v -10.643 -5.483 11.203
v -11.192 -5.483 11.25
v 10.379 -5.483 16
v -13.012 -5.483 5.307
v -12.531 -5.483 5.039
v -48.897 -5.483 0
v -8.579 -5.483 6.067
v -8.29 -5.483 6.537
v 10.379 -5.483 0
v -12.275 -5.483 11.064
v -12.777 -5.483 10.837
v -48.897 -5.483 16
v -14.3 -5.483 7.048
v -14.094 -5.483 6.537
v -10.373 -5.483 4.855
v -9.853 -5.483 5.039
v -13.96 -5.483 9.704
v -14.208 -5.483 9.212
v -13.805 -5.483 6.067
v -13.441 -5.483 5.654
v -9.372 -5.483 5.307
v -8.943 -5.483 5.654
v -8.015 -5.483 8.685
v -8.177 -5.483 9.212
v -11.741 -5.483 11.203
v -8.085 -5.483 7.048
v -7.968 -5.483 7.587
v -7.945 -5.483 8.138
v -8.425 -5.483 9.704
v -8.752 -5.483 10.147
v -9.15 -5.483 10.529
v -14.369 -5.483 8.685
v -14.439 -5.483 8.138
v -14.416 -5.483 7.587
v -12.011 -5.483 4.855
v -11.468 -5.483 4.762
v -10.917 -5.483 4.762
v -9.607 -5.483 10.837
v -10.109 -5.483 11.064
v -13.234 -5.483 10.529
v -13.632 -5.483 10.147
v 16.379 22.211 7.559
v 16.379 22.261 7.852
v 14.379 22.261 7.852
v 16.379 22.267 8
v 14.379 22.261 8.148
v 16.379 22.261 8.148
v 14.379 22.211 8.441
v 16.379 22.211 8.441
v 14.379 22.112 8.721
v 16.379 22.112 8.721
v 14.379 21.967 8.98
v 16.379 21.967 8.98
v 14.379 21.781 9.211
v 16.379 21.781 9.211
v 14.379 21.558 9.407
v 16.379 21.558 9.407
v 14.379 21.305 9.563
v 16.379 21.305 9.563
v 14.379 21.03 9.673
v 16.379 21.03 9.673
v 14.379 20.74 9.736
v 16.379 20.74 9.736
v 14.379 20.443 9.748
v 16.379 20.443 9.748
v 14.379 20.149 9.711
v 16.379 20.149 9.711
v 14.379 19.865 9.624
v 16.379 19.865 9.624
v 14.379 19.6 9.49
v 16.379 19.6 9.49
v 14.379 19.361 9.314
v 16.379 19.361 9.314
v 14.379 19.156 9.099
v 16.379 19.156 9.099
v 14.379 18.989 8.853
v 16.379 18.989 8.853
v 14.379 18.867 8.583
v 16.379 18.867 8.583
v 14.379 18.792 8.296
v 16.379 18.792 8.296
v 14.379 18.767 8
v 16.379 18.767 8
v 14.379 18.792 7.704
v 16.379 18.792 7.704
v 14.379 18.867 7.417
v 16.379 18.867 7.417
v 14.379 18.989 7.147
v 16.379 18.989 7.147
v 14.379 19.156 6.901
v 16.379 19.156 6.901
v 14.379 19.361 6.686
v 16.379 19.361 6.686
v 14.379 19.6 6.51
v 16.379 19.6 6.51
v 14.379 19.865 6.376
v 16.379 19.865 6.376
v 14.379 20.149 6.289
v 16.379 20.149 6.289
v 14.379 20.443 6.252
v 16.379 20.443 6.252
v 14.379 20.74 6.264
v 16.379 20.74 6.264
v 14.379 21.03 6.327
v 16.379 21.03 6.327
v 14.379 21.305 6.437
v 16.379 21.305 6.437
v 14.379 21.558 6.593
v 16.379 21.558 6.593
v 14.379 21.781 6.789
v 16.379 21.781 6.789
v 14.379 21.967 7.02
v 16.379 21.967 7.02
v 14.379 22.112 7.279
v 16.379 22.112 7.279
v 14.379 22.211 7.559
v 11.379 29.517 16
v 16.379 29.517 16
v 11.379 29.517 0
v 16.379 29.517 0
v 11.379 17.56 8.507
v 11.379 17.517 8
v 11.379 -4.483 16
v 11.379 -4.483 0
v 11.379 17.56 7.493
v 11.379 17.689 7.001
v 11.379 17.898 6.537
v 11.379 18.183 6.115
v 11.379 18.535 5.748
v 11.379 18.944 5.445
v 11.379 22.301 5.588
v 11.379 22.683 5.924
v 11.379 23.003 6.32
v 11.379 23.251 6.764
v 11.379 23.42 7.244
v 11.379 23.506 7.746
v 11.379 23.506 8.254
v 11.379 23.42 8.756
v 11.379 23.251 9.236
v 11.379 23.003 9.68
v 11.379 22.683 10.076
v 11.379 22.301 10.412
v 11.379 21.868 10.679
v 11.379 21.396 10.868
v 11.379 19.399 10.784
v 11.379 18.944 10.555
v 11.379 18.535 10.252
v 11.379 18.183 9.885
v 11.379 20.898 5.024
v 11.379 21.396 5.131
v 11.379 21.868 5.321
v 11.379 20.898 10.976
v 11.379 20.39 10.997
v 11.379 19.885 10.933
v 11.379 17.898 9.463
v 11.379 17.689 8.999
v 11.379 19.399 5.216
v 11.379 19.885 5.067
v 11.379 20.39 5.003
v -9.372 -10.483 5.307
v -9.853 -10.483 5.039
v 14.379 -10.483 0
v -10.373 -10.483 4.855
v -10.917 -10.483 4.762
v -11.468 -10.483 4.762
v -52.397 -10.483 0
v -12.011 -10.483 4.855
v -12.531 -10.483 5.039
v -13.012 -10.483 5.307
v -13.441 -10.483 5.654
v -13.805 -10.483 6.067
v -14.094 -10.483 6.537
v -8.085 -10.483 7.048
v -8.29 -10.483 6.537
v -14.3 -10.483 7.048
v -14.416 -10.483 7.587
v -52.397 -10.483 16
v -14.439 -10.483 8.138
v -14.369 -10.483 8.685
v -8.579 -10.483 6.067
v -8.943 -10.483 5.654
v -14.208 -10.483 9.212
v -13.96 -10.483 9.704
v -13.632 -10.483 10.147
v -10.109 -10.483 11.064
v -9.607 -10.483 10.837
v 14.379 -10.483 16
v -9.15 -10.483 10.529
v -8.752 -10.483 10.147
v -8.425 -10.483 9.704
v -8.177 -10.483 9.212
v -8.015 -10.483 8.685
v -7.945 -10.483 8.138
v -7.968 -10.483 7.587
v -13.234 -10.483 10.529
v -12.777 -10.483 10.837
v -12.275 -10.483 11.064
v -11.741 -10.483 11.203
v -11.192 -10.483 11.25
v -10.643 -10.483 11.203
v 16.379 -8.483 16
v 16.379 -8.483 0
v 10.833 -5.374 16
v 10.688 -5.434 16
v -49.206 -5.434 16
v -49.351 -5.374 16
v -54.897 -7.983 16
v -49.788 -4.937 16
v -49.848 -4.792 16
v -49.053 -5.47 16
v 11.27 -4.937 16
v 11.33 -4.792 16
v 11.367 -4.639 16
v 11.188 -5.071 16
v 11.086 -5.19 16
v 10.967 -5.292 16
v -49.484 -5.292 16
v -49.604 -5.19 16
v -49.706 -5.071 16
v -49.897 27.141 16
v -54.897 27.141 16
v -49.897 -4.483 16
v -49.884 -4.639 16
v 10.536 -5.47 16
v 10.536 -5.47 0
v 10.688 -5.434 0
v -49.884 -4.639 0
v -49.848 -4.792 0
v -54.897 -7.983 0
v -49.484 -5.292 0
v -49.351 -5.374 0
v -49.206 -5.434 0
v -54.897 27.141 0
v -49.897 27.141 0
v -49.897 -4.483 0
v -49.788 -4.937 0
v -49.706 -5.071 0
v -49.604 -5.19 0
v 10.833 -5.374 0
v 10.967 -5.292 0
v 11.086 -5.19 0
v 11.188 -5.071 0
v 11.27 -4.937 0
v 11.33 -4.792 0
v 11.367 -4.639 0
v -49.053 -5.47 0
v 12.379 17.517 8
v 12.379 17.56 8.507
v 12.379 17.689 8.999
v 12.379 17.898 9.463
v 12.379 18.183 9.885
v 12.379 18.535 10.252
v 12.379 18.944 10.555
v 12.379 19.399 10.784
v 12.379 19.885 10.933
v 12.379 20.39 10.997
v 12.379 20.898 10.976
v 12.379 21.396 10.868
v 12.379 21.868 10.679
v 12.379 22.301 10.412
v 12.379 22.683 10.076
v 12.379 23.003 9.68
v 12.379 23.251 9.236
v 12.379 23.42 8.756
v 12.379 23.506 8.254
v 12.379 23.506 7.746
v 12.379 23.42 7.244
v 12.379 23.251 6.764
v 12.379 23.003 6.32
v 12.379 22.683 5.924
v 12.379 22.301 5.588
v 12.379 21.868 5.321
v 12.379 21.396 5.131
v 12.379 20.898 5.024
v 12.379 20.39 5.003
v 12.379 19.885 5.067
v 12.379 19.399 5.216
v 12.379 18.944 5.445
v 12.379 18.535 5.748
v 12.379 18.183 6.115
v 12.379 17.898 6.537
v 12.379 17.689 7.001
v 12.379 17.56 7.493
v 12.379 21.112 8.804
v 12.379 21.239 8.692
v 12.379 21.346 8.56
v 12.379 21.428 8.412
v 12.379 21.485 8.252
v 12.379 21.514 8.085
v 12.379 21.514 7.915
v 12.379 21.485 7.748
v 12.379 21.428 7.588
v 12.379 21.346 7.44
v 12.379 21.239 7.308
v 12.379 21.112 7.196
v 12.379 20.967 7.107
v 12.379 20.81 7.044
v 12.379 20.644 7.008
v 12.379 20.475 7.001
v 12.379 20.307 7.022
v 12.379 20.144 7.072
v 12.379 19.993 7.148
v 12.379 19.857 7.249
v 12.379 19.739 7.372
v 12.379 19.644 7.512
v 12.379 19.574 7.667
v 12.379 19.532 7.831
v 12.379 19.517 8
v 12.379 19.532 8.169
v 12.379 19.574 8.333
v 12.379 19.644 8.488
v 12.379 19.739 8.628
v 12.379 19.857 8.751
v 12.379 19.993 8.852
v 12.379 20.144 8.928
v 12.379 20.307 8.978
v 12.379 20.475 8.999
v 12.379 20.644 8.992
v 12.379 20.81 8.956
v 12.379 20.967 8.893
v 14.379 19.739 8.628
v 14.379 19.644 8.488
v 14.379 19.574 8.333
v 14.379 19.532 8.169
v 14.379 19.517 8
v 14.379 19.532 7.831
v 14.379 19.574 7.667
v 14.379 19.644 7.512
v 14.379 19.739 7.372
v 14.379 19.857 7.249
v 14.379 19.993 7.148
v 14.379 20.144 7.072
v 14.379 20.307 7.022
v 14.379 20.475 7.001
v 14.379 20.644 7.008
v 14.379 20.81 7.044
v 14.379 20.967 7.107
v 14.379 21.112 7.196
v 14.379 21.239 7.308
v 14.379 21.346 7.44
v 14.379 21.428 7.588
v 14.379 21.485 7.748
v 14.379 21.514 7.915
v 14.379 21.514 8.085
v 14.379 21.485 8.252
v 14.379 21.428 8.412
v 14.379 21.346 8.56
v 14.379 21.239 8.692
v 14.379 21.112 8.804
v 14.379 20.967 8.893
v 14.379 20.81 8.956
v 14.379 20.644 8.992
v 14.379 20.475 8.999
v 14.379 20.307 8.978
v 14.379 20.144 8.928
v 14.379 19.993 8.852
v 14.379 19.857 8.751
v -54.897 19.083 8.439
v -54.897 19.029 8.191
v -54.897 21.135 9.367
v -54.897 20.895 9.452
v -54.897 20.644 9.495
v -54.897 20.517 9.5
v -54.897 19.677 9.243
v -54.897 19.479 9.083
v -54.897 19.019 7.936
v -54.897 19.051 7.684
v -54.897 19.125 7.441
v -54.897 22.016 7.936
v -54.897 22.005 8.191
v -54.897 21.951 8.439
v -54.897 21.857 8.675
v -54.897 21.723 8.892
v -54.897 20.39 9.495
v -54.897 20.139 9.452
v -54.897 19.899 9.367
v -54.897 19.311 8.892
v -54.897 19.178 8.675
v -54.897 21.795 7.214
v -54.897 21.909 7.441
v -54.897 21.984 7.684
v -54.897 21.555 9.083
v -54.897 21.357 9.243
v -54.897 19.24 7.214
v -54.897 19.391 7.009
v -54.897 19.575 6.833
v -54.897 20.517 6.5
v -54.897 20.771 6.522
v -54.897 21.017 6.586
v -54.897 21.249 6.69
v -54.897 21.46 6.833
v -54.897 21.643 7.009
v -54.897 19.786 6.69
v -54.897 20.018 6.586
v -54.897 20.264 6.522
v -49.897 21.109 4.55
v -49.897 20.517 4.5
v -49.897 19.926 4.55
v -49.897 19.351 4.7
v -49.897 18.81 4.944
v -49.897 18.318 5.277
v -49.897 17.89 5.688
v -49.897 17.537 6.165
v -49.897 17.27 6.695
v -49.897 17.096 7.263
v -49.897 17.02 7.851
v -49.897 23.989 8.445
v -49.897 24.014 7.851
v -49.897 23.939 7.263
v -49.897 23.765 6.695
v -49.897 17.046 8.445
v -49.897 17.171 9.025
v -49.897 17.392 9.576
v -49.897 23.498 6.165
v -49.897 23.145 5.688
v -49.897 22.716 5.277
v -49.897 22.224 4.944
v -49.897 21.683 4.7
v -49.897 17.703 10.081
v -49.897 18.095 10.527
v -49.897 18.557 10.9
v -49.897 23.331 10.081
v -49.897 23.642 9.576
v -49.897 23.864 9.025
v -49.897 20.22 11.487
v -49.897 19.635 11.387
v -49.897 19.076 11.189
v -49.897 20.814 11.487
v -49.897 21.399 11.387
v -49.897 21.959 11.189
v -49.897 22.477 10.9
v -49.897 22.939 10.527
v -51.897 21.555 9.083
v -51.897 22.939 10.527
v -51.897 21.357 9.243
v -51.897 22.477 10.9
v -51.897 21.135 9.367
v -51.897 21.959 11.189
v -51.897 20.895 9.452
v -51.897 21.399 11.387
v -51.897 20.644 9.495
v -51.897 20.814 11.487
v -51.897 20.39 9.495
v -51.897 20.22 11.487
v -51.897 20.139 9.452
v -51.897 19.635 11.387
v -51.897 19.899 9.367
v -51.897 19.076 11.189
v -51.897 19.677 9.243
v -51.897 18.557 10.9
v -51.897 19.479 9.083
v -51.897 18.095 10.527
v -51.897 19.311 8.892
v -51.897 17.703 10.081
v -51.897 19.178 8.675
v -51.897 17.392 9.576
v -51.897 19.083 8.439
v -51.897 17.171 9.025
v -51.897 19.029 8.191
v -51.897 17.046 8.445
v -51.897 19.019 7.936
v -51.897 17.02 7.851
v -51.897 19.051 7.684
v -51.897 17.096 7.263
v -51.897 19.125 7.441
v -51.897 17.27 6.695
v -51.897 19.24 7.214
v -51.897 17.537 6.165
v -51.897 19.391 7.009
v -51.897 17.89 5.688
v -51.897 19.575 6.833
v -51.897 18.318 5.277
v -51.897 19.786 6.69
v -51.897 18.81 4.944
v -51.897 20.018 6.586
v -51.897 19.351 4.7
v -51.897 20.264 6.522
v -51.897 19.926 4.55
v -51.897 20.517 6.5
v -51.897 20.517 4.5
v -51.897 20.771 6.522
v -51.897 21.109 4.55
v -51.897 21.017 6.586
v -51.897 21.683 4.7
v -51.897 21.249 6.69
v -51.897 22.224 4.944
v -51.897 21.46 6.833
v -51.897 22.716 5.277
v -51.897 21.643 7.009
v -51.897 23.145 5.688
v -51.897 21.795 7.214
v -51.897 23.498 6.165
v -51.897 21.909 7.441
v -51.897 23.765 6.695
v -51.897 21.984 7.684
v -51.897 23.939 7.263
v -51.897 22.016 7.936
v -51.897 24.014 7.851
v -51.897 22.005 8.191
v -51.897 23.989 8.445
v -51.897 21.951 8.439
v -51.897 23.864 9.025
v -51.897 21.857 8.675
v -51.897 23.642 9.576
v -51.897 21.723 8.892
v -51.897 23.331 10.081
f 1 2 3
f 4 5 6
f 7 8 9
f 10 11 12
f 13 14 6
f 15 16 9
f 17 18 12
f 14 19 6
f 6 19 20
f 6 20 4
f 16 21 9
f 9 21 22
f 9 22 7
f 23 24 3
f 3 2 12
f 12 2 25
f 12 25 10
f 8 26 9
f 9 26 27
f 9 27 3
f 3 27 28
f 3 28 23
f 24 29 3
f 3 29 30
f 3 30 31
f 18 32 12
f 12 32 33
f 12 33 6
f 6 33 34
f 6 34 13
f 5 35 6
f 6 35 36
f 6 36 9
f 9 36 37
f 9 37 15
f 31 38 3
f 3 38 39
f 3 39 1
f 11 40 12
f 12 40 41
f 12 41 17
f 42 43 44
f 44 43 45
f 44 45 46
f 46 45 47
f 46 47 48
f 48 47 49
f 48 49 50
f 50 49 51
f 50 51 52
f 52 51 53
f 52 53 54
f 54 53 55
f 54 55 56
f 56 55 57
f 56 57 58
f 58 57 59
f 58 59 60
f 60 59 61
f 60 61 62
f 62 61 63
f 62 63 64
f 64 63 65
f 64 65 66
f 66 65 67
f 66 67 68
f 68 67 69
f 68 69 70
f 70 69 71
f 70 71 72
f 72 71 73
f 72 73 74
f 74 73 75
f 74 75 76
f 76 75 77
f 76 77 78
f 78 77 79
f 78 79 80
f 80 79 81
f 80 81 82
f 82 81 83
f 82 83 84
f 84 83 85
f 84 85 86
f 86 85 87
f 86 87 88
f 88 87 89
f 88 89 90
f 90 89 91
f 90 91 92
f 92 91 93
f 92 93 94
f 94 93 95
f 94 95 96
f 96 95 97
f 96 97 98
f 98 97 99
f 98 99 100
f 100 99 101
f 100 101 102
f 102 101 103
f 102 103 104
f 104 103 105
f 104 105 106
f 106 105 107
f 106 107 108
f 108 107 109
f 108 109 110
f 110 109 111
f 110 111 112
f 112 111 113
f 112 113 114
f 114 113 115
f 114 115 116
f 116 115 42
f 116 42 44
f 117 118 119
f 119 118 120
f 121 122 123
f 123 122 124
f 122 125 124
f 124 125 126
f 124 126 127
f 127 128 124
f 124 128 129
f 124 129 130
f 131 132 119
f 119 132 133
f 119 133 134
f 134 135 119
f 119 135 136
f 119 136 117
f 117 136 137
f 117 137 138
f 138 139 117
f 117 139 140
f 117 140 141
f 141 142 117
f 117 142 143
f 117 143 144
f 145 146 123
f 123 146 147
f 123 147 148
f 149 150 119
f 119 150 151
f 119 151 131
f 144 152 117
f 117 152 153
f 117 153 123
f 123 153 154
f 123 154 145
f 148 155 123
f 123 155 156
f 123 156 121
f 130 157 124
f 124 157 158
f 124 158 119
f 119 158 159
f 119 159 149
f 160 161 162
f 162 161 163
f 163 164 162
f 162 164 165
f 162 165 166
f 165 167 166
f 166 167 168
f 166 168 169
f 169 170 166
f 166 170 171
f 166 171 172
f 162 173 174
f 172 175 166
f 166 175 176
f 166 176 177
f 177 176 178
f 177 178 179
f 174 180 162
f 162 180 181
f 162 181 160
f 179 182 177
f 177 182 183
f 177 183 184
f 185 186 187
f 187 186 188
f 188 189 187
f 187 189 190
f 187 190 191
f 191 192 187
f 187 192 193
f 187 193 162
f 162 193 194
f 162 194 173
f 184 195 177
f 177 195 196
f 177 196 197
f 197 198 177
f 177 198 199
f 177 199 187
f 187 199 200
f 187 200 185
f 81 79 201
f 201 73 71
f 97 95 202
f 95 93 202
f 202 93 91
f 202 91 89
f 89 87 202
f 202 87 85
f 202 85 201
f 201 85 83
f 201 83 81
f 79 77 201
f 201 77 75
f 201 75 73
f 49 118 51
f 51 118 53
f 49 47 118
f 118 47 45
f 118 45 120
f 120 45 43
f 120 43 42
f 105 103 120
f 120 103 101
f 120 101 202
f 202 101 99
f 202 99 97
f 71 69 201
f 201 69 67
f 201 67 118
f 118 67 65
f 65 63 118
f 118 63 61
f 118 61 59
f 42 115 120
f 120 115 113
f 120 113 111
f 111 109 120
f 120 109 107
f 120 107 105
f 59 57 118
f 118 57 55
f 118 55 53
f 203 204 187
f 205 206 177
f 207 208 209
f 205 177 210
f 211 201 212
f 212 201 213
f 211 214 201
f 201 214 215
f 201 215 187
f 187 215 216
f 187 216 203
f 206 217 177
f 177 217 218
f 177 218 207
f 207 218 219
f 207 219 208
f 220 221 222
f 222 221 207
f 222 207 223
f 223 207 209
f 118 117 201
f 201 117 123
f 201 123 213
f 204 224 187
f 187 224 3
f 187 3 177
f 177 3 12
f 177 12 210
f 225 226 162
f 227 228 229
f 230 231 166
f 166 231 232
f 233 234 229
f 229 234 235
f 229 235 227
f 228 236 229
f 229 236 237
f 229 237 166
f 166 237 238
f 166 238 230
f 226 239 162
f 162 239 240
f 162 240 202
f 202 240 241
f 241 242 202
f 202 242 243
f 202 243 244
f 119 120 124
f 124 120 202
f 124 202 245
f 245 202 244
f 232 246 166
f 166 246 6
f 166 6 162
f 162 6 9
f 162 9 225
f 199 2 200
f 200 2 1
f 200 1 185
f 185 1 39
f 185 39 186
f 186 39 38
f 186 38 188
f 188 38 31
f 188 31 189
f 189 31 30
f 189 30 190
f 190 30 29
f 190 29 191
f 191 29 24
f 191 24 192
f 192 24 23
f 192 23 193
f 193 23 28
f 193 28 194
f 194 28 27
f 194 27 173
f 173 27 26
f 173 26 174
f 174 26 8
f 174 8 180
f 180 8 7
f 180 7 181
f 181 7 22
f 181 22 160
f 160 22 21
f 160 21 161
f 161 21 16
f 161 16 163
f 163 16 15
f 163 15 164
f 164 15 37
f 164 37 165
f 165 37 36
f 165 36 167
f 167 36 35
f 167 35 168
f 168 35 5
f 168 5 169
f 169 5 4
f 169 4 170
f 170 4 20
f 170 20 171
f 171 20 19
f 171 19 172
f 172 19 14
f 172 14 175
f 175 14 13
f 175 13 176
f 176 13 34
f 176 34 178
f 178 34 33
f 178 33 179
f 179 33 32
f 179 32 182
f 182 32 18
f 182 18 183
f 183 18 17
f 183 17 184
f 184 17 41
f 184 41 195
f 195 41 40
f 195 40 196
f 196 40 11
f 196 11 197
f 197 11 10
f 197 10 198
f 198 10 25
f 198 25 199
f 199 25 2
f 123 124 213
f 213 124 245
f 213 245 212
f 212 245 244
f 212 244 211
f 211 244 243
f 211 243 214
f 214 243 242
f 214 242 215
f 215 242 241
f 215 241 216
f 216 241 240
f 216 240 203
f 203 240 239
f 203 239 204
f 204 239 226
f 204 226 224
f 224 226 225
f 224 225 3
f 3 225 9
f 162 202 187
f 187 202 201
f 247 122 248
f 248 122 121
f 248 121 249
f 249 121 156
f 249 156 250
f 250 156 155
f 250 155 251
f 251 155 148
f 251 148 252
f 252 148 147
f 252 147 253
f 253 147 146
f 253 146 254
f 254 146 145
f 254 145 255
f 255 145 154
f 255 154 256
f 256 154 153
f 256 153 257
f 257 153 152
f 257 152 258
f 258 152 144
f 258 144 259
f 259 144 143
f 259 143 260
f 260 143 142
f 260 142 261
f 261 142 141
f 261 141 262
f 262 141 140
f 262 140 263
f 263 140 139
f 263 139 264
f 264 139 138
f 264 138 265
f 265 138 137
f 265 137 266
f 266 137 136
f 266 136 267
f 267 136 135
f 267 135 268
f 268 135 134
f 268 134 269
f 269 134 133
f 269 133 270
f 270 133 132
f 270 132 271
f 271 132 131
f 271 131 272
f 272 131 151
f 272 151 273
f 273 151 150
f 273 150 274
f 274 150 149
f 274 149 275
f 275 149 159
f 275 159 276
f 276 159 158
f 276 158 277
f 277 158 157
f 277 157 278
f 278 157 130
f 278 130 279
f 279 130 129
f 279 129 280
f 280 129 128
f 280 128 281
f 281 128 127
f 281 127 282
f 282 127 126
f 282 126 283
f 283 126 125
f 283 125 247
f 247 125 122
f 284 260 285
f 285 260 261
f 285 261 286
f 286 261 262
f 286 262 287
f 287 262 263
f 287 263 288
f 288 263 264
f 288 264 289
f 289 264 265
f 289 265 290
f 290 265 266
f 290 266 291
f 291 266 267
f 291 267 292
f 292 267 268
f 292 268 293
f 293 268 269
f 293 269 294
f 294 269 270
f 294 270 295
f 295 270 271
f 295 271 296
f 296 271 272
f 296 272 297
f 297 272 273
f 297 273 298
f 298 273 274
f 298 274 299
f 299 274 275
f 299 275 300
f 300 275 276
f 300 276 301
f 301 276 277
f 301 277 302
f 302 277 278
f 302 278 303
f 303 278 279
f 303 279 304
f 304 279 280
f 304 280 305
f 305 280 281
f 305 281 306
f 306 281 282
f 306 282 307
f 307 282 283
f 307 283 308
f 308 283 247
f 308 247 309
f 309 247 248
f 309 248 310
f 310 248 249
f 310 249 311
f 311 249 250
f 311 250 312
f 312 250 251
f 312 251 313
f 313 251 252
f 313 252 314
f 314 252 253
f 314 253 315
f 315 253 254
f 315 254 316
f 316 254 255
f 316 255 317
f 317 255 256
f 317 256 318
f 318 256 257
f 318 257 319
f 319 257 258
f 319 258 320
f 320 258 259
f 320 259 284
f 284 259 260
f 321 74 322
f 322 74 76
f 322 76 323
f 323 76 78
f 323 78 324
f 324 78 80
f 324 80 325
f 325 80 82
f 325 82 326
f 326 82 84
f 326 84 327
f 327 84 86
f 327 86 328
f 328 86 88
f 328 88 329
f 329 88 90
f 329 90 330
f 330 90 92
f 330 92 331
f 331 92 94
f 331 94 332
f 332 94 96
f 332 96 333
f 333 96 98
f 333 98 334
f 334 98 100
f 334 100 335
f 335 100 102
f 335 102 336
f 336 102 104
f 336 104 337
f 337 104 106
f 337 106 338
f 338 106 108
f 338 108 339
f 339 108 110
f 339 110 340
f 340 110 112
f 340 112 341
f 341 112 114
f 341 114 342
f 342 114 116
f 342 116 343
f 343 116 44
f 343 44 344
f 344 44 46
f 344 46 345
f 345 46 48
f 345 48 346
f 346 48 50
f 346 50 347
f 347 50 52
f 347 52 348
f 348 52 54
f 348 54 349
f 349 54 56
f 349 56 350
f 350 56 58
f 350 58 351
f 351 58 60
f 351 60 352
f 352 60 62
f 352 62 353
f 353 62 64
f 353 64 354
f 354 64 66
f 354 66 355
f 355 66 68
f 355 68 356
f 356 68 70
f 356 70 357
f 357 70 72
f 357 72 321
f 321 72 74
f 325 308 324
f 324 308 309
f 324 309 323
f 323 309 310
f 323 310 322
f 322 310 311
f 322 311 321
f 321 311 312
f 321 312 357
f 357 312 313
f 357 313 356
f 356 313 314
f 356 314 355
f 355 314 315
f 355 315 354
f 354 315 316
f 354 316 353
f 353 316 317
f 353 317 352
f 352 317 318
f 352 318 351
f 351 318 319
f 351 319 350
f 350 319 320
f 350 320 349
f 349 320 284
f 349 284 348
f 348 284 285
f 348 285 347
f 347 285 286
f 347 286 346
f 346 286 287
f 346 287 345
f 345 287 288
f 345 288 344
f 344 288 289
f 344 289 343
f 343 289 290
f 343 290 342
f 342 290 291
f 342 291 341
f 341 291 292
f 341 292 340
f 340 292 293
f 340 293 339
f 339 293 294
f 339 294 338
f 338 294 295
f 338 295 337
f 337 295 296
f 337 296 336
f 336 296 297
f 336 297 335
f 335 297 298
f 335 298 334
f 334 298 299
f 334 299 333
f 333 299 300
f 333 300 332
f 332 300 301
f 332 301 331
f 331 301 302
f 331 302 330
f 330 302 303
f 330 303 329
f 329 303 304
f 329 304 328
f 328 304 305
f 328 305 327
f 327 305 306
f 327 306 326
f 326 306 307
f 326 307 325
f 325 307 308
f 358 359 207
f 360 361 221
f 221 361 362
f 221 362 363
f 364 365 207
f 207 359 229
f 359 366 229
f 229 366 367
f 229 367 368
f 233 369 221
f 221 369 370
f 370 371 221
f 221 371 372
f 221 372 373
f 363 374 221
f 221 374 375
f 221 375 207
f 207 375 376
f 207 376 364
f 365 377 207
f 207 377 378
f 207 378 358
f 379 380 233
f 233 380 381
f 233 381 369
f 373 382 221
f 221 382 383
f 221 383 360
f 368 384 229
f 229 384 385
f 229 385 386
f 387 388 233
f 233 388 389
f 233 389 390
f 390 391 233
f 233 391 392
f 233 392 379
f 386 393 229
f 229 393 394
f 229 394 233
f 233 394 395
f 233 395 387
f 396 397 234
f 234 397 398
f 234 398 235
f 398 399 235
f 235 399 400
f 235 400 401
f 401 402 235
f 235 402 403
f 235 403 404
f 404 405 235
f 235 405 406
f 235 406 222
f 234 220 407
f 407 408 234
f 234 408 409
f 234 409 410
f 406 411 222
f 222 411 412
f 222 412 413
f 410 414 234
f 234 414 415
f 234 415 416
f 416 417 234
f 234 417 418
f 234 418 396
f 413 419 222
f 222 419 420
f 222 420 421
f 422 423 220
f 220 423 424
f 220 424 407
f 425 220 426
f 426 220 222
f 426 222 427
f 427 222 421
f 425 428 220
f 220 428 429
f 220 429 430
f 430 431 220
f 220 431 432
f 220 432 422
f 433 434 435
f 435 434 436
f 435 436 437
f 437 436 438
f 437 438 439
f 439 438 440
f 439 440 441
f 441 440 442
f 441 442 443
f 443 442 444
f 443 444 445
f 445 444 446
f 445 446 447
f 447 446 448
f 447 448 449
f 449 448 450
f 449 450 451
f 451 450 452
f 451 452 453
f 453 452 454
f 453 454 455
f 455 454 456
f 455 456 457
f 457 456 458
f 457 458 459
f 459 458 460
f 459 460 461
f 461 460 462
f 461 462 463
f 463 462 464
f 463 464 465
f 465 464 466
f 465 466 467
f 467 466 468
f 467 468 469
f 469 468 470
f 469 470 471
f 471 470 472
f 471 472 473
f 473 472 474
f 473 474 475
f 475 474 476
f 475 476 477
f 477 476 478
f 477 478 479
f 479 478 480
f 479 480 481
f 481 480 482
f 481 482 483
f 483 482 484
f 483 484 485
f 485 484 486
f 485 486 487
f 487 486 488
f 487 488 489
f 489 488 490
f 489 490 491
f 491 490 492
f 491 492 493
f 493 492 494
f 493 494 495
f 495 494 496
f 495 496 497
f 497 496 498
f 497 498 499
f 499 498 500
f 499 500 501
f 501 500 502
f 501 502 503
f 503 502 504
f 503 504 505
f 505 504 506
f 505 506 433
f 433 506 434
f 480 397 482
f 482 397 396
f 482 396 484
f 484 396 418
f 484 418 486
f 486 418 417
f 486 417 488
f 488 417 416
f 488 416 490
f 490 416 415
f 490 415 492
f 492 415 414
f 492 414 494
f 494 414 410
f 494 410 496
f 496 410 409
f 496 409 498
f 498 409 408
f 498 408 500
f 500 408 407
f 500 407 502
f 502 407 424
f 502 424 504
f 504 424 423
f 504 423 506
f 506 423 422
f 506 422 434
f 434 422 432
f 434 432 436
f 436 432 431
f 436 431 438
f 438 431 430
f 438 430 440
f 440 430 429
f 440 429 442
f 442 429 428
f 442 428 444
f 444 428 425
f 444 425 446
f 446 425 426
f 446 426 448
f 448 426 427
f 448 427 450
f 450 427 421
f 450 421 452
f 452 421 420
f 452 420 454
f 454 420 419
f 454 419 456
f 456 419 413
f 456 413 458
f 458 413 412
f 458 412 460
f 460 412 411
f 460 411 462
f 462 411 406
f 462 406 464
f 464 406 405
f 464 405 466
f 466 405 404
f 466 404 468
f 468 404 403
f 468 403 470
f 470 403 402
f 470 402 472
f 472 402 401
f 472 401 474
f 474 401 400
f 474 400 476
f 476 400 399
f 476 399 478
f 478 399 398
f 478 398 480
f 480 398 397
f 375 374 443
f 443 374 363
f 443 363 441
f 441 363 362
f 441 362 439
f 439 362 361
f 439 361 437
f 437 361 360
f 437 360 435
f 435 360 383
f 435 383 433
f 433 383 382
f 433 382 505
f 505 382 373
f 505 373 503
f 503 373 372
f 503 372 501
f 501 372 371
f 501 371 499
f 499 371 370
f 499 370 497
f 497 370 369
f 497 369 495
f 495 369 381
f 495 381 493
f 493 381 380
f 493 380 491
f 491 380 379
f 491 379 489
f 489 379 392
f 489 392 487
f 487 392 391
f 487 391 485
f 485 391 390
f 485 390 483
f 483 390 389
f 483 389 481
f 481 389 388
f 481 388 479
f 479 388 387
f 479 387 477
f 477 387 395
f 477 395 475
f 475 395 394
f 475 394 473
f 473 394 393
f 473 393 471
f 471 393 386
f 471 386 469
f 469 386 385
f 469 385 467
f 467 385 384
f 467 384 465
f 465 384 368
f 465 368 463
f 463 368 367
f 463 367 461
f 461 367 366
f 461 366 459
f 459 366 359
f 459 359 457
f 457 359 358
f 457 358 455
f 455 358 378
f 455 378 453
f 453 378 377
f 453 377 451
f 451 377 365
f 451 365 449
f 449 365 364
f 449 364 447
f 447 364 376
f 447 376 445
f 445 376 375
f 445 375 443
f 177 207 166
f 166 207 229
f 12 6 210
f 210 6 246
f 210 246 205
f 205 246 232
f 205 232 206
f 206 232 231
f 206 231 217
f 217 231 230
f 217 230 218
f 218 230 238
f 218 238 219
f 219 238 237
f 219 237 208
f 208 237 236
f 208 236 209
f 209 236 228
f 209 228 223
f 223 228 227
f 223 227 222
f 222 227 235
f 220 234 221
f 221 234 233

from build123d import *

# Parameters (mm, degrees)
BOSS_EXTRUDE1_DEPTH = 16
SKETCH2_R           = 3.25
CUT_EXTRUDE1_DEPTH  = 20
FILLET1_R           = 1
CHAMFER1_SIZE       = 2
SKETCH3_R           = 1.75
CUT_EXTRUDE2_DEPTH  = 20
SKETCH4_R           = 3
CUT_EXTRUDE3_DEPTH  = 3
BOSS_EXTRUDE2_START = 2
SKETCH5_R           = 3
BOSS_EXTRUDE2_DEPTH = 2
SKETCH6_R           = 1
CUT_EXTRUDE4_DEPTH  = 2
SKETCH7_W           = 16
SKETCH7_H           = 5
BOSS_EXTRUDE3_DEPTH = 37
SKETCH8_W           = 5
SKETCH8_H           = 16
BOSS_EXTRUDE4_DEPTH = 37
CUT_EXTRUDE5_START  = -87
SKETCH9_R           = 1
CUT_EXTRUDE5_DEPTH  = 87
SKETCH10_R          = 3.5
CUT_EXTRUDE6_DEPTH  = 2
SKETCH11_R          = 1.5
CUT_EXTRUDE7_DEPTH  = 12
CHAMFER2_SIZE       = 2.5
FILLET2_R           = 1
SKETCH12_W          = 16
SKETCH12_H          = 4.376308933
CUT_EXTRUDE8_DEPTH  = 12


with BuildPart() as part:
    # Sketch1 → Boss-Extrude1 (new body)
    with BuildSketch(Plane.XY):
        Polygon((16.379310345, 29.517241379), (11.379310345, 29.517241379), (11.379310345, -5.482758621), (-17.896551724, -5.482758621), (-17.896551724, -10.482758621), (16.379310345, -10.482758621), align=None)
    extrude(amount=BOSS_EXTRUDE1_DEPTH)

    # Sketch2 → Cut-Extrude1 (cut)
    with BuildSketch(Plane(origin=(0, -5.482758621, 0), x_dir=(1, 0, 0), z_dir=(0, 1, 0))):
        with Locations(Location((-11.192164188, -8, 0), (0, 0, 270))):
            Circle(SKETCH2_R)
    extrude(amount=-CUT_EXTRUDE1_DEPTH, mode=Mode.SUBTRACT)

    # Fillet1
    fillet1_edges = [part.edges().sort_by_distance(p)[0] for p in [
        (11.379310345, -5.482758621, 8),
    ]]
    fillet(fillet1_edges, radius=FILLET1_R)

    # Chamfer1
    chamfer1_edges = [part.edges().sort_by_distance(p)[0] for p in [
        (16.379310345, -10.482758621, 8),
    ]]
    chamfer(chamfer1_edges, length=CHAMFER1_SIZE)

    # Sketch3 → Cut-Extrude2 (cut)
    with BuildSketch(Plane.ZY.offset(-11.379310345)):
        with Locations(Location((8, 20.517241379, 0), (0, 0, 270))):
            Circle(SKETCH3_R)
    extrude(amount=-CUT_EXTRUDE2_DEPTH, mode=Mode.SUBTRACT)

    # Sketch4 → Cut-Extrude3 (cut)
    with BuildSketch(Plane.ZY.offset(-11.379310345)):
        with Locations(Location((8, 20.517241379, 0), (0, 0, 270))):
            Circle(SKETCH4_R)
    extrude(amount=-CUT_EXTRUDE3_DEPTH, mode=Mode.SUBTRACT)

    # Sketch5 → Boss-Extrude2 (add)
    with BuildSketch(Plane.ZY.offset(-14.379310345).offset(BOSS_EXTRUDE2_START)):
        with Locations(Location((8, 20.517241379, 0), (0, 0, 270))):
            Circle(SKETCH5_R)
    extrude(amount=-BOSS_EXTRUDE2_DEPTH)

    # Sketch6 → Cut-Extrude4 (cut)
    with BuildSketch(Plane.ZY.offset(-12.379310345)):
        with Locations(Location((8, 20.517241379, 0), (0, 0, 270))):
            Circle(SKETCH6_R)
    extrude(amount=-CUT_EXTRUDE4_DEPTH, mode=Mode.SUBTRACT)

    # Sketch7 → Boss-Extrude3 (add)
    with BuildSketch(Plane.ZY.offset(17.896551724)):
        with Locations((8, -7.982758621)):
            Rectangle(SKETCH7_W, SKETCH7_H)
    extrude(amount=BOSS_EXTRUDE3_DEPTH)

    # Sketch8 → Boss-Extrude4 (add)
    with BuildSketch(Plane(origin=(0, -5.482758621, 0), x_dir=(1, 0, 0), z_dir=(0, 1, 0))):
        with Locations((-52.396551724, -8)):
            Rectangle(SKETCH8_W, SKETCH8_H)
    extrude(amount=BOSS_EXTRUDE4_DEPTH)

    # Sketch9 → Cut-Extrude5 (cut)
    with BuildSketch(Plane(origin=(14.379310345, 0, 0), x_dir=(0, 0, -1), z_dir=(1, 0, 0)).offset(CUT_EXTRUDE5_START)):
        with Locations(Location((-8, 20.517241379, 0), (0, 0, 270))):
            Circle(SKETCH9_R)
    extrude(amount=CUT_EXTRUDE5_DEPTH, mode=Mode.SUBTRACT)

    # Sketch10 → Cut-Extrude6 (cut)
    with BuildSketch(Plane(origin=(-49.896551724, 0, 0), x_dir=(0, 0, -1), z_dir=(1, 0, 0))):
        with Locations((-8, 20.517241379)):
            Circle(SKETCH10_R)
    extrude(amount=-CUT_EXTRUDE6_DEPTH, mode=Mode.SUBTRACT)

    # Sketch11 → Cut-Extrude7 (cut)
    with BuildSketch(Plane(origin=(-51.896551724, 0, 0), x_dir=(0, 0, -1), z_dir=(1, 0, 0))):
        with Locations((-8, 20.517241379)):
            Circle(SKETCH11_R)
    extrude(amount=-CUT_EXTRUDE7_DEPTH, mode=Mode.SUBTRACT)

    # Chamfer2
    chamfer2_edges = [part.edges().sort_by_distance(p)[0] for p in [
        (-54.896551724, -10.482758621, 8),
    ]]
    chamfer(chamfer2_edges, length=CHAMFER2_SIZE)

    # Fillet2
    fillet2_edges = [part.edges().sort_by_distance(p)[0] for p in [
        (-49.896551724, -5.482758621, 8),
    ]]
    fillet(fillet2_edges, radius=FILLET2_R)

    # Sketch12 → Cut-Extrude8 (cut)
    with BuildSketch(Plane(origin=(-49.896551724, 0, 0), x_dir=(0, 0, -1), z_dir=(1, 0, 0))):
        with Locations((-8, 29.329086913)):
            Rectangle(SKETCH12_W, SKETCH12_H)
    extrude(amount=-CUT_EXTRUDE8_DEPTH, mode=Mode.SUBTRACT)


solid = part.part
